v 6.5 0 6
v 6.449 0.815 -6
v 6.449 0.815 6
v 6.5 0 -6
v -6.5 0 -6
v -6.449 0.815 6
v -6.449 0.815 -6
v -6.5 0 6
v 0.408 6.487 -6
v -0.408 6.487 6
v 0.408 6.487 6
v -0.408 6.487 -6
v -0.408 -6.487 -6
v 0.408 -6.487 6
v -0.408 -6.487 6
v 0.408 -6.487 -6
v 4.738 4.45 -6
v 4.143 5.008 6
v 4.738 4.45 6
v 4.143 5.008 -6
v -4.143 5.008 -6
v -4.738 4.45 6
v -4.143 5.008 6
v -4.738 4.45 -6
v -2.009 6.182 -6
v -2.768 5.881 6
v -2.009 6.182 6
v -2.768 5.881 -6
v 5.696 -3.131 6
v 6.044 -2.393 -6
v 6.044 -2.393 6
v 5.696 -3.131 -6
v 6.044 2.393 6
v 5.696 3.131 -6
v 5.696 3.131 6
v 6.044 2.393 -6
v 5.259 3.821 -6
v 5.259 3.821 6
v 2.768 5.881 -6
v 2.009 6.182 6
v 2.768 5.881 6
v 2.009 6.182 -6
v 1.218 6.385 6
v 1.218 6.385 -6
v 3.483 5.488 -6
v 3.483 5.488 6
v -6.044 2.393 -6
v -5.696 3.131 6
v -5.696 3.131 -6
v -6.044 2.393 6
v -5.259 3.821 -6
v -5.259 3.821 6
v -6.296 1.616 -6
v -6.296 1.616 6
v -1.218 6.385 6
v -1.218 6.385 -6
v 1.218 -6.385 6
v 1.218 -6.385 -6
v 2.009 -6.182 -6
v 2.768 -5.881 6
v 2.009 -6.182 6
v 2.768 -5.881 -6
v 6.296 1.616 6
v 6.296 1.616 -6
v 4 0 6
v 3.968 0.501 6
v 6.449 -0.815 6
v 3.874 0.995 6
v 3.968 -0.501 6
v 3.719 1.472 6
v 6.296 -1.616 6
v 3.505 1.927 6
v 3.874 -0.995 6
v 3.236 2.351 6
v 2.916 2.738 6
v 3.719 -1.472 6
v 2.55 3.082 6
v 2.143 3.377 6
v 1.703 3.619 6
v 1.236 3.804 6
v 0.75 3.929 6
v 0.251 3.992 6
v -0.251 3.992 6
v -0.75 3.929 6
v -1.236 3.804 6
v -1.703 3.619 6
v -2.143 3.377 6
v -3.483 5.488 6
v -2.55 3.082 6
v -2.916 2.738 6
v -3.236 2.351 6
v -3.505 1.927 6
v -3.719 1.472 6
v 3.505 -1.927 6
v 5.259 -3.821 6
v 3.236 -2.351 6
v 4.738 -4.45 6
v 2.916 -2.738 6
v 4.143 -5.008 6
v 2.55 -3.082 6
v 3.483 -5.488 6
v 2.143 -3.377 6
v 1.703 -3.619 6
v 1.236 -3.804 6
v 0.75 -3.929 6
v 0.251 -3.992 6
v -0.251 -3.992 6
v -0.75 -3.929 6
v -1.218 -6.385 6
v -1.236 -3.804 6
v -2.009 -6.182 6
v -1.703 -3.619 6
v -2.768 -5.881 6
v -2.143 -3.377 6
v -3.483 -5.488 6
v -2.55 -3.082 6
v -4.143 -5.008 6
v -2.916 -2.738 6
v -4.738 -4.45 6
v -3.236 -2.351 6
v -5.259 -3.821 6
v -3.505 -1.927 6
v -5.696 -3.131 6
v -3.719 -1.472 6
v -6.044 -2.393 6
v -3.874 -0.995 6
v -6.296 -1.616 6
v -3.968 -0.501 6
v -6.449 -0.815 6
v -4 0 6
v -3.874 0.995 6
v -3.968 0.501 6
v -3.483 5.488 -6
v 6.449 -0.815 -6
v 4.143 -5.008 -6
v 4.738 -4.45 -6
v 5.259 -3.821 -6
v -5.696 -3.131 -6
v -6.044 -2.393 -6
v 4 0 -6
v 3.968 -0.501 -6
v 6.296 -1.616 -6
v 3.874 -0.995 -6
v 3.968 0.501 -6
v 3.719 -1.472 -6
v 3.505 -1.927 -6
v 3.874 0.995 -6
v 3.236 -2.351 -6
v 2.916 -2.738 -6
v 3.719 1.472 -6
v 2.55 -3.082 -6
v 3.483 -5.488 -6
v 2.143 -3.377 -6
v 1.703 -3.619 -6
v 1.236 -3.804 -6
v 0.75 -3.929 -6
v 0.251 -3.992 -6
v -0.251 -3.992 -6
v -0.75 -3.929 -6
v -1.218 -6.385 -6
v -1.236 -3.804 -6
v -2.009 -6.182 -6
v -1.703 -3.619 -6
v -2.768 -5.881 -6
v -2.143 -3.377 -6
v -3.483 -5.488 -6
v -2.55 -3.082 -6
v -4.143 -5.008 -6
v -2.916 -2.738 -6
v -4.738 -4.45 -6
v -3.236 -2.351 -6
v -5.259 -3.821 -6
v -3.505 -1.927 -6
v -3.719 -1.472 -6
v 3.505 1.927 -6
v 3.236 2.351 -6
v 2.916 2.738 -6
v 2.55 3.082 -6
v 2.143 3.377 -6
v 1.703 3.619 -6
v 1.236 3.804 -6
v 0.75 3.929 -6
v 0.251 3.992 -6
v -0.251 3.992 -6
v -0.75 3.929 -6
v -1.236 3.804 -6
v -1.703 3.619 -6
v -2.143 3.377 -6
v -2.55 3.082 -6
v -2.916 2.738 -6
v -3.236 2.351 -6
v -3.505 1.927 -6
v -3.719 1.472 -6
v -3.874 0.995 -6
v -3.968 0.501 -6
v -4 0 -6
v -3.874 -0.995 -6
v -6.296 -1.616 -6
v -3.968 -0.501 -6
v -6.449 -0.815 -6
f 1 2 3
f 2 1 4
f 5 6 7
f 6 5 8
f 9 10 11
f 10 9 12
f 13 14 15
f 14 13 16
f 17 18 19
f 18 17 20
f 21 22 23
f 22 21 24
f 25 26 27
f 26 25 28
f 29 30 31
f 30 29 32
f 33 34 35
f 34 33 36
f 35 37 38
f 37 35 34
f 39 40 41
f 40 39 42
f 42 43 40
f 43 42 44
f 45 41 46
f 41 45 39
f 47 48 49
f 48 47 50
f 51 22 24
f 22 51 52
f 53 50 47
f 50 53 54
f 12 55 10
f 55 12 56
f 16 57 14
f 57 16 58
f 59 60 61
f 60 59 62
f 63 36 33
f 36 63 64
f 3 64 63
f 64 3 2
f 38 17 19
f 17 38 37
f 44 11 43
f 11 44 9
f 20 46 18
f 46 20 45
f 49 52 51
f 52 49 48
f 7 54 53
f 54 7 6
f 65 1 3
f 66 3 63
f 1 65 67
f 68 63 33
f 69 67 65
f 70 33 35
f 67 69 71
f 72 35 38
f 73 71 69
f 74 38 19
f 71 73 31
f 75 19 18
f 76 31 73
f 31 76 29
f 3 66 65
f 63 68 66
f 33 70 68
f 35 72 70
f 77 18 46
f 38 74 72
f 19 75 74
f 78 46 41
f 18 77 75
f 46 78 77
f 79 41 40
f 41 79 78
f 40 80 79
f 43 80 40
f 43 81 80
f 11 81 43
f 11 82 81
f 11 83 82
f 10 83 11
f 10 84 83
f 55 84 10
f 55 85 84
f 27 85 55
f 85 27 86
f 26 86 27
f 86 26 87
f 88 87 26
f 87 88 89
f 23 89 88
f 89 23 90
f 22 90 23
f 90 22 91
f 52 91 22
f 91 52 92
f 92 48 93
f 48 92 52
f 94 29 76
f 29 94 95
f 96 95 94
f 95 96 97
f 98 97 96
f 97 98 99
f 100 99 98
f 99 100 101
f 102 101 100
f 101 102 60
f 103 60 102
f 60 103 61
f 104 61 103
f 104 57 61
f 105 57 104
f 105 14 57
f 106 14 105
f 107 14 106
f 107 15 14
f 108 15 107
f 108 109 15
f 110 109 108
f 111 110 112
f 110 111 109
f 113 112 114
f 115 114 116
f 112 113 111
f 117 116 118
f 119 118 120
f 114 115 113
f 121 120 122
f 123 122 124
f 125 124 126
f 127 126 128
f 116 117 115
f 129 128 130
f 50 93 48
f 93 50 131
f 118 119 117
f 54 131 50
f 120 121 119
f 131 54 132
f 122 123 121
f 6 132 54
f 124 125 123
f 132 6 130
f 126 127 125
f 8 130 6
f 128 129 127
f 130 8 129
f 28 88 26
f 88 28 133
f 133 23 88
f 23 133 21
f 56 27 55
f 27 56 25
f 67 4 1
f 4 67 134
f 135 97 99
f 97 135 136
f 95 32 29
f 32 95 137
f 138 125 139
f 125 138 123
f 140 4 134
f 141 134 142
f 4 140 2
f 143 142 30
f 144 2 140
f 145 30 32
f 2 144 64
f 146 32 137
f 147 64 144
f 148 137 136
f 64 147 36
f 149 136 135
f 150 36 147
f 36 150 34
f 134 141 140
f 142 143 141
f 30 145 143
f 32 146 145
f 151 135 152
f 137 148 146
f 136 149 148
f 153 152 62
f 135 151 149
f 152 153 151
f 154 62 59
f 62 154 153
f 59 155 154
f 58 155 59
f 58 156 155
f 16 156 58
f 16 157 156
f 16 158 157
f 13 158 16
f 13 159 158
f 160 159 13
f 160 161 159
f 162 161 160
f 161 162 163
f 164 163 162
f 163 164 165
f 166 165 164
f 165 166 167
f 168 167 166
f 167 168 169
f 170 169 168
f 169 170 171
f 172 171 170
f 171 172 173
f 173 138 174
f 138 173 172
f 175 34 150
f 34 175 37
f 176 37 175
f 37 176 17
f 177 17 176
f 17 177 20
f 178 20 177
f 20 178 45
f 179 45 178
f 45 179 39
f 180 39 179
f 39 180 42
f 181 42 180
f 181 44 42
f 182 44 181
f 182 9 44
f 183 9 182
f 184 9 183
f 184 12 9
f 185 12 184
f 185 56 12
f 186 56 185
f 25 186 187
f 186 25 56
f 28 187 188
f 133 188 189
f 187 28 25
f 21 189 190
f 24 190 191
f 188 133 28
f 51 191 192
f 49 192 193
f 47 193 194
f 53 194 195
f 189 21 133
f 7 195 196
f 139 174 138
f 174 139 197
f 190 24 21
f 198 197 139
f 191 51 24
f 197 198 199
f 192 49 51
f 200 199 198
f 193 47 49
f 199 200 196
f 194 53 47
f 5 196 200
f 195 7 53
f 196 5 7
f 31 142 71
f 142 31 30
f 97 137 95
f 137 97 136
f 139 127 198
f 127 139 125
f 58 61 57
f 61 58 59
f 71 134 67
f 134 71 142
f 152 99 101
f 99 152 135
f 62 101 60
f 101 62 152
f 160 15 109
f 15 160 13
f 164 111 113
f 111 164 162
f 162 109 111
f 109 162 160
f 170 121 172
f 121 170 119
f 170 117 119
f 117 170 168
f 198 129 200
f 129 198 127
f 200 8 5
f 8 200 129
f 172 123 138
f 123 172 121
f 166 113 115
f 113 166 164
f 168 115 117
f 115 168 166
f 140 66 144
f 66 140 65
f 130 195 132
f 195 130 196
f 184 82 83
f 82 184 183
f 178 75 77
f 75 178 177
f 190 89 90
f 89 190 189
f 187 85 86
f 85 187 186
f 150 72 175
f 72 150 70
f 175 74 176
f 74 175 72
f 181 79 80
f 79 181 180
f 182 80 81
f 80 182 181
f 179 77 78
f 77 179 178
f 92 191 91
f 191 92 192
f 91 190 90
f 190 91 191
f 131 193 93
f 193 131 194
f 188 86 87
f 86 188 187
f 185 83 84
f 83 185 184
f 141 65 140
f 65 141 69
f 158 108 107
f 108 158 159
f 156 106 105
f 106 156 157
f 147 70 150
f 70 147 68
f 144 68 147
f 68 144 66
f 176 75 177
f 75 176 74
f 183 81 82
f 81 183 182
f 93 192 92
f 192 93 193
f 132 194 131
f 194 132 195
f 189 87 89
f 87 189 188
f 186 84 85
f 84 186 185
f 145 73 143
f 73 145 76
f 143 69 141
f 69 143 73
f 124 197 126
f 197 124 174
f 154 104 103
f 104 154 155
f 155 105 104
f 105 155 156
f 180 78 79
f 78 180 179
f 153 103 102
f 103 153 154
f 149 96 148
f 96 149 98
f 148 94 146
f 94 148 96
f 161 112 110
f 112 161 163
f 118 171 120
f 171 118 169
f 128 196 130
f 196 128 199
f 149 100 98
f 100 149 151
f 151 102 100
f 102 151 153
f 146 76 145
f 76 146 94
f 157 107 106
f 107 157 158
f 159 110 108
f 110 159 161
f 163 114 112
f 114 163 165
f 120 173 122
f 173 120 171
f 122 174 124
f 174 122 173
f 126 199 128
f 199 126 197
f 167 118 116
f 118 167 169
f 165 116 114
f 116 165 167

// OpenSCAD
$fn = 50;


difference() {
	union() {
		translate(v = [0, 0, -6.0000000000]) {
			cylinder(h = 12, r = 6.5000000000);
		}
	}
	union() {
		translate(v = [0, 0, -100.0000000000]) {
			cylinder(h = 200, r = 4);
		}
	}
}
